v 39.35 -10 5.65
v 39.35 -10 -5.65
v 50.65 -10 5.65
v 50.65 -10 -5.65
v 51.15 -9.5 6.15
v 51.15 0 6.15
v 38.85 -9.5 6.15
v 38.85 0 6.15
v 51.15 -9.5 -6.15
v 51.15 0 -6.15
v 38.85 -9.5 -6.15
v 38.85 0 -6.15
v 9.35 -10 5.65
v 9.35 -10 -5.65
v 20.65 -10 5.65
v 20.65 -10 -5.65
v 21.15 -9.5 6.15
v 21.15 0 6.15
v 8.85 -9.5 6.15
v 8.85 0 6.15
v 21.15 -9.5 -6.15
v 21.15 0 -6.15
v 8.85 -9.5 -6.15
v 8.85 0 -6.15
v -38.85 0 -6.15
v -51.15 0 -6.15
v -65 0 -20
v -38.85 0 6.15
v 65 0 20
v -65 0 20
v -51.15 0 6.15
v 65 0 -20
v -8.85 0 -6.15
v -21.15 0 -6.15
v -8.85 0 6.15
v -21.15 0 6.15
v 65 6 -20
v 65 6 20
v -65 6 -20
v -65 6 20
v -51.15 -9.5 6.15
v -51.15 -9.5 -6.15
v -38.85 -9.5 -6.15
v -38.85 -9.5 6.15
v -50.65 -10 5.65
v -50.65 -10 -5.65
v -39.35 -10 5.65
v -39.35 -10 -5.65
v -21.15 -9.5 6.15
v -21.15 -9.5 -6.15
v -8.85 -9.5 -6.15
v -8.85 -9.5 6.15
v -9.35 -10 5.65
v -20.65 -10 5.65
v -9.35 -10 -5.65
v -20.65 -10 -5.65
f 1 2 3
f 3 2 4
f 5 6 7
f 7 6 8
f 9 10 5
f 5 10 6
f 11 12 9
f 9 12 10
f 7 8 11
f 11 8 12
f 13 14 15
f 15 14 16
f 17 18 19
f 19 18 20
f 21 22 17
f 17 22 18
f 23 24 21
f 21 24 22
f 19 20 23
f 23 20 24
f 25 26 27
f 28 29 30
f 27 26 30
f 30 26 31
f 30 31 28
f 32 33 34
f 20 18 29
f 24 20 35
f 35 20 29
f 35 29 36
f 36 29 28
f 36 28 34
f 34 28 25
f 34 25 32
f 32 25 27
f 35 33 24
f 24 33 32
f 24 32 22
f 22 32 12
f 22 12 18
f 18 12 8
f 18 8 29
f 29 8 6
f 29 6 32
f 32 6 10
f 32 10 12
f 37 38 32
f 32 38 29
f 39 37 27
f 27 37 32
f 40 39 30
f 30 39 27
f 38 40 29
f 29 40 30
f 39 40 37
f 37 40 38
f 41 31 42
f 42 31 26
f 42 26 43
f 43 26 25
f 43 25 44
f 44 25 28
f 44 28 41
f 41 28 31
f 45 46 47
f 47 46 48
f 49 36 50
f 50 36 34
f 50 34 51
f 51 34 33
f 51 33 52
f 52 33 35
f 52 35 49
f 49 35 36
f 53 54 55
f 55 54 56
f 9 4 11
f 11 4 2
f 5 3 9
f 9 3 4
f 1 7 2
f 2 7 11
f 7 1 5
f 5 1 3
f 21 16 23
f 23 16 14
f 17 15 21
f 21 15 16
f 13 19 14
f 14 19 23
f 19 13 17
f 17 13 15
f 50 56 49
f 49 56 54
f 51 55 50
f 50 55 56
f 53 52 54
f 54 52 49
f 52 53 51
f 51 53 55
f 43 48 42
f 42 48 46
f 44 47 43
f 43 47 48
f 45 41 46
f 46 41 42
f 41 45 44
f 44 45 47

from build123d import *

# Parameters (mm, degrees)
SKETCH1_W           = 130
SKETCH1_H           = 40
BOSS_EXTRUDE1_DEPTH = 6
SKETCH2_W           = 12.3
SKETCH2_H           = 12.3
BOSS_EXTRUDE2_DEPTH = 10
LPATTERN1_COUNT     = 4
LPATTERN1_PITCH     = 30
CHAMFER1_SIZE       = 0.5


with BuildPart() as part:
    # Sketch1 → Boss-Extrude1 (new body)
    with BuildSketch(Plane(origin=(0, 0, 0), x_dir=(1, 0, 0), z_dir=(0, 1, 0))):
        Rectangle(SKETCH1_W, SKETCH1_H)
    extrude(amount=BOSS_EXTRUDE1_DEPTH)

    # Sketch2 → Boss-Extrude2 (add)
    with BuildSketch(Plane.XZ):
        with Locations((-45, 0)):
            Rectangle(SKETCH2_W, SKETCH2_H)
    boss_extrude2 = extrude(amount=BOSS_EXTRUDE2_DEPTH)

    # LPattern1: Boss-Extrude2 ×4
    with Locations(*[(i * LPATTERN1_PITCH, 0, 0) for i in range(1, LPATTERN1_COUNT)]):
        add(boss_extrude2)

    # Chamfer1
    chamfer1_edges = [part.edges().sort_by_distance(p)[0] for p in [
        (-51.15, -10, 0),
        (-45, -10, -6.15),
        (-38.85, -10, 0),
        (-45, -10, 6.15),
        (-21.15, -10, 0),
        (-15, -10, -6.15),
        (-8.85, -10, 0),
        (-15, -10, 6.15),
        (8.85, -10, 0),
        (15, -10, -6.15),
        (21.15, -10, 0),
        (15, -10, 6.15),
        (38.85, -10, 0),
        (45, -10, -6.15),
        (51.15, -10, 0),
        (45, -10, 6.15),
    ]]
    chamfer(chamfer1_edges, length=CHAMFER1_SIZE)


solid = part.part
